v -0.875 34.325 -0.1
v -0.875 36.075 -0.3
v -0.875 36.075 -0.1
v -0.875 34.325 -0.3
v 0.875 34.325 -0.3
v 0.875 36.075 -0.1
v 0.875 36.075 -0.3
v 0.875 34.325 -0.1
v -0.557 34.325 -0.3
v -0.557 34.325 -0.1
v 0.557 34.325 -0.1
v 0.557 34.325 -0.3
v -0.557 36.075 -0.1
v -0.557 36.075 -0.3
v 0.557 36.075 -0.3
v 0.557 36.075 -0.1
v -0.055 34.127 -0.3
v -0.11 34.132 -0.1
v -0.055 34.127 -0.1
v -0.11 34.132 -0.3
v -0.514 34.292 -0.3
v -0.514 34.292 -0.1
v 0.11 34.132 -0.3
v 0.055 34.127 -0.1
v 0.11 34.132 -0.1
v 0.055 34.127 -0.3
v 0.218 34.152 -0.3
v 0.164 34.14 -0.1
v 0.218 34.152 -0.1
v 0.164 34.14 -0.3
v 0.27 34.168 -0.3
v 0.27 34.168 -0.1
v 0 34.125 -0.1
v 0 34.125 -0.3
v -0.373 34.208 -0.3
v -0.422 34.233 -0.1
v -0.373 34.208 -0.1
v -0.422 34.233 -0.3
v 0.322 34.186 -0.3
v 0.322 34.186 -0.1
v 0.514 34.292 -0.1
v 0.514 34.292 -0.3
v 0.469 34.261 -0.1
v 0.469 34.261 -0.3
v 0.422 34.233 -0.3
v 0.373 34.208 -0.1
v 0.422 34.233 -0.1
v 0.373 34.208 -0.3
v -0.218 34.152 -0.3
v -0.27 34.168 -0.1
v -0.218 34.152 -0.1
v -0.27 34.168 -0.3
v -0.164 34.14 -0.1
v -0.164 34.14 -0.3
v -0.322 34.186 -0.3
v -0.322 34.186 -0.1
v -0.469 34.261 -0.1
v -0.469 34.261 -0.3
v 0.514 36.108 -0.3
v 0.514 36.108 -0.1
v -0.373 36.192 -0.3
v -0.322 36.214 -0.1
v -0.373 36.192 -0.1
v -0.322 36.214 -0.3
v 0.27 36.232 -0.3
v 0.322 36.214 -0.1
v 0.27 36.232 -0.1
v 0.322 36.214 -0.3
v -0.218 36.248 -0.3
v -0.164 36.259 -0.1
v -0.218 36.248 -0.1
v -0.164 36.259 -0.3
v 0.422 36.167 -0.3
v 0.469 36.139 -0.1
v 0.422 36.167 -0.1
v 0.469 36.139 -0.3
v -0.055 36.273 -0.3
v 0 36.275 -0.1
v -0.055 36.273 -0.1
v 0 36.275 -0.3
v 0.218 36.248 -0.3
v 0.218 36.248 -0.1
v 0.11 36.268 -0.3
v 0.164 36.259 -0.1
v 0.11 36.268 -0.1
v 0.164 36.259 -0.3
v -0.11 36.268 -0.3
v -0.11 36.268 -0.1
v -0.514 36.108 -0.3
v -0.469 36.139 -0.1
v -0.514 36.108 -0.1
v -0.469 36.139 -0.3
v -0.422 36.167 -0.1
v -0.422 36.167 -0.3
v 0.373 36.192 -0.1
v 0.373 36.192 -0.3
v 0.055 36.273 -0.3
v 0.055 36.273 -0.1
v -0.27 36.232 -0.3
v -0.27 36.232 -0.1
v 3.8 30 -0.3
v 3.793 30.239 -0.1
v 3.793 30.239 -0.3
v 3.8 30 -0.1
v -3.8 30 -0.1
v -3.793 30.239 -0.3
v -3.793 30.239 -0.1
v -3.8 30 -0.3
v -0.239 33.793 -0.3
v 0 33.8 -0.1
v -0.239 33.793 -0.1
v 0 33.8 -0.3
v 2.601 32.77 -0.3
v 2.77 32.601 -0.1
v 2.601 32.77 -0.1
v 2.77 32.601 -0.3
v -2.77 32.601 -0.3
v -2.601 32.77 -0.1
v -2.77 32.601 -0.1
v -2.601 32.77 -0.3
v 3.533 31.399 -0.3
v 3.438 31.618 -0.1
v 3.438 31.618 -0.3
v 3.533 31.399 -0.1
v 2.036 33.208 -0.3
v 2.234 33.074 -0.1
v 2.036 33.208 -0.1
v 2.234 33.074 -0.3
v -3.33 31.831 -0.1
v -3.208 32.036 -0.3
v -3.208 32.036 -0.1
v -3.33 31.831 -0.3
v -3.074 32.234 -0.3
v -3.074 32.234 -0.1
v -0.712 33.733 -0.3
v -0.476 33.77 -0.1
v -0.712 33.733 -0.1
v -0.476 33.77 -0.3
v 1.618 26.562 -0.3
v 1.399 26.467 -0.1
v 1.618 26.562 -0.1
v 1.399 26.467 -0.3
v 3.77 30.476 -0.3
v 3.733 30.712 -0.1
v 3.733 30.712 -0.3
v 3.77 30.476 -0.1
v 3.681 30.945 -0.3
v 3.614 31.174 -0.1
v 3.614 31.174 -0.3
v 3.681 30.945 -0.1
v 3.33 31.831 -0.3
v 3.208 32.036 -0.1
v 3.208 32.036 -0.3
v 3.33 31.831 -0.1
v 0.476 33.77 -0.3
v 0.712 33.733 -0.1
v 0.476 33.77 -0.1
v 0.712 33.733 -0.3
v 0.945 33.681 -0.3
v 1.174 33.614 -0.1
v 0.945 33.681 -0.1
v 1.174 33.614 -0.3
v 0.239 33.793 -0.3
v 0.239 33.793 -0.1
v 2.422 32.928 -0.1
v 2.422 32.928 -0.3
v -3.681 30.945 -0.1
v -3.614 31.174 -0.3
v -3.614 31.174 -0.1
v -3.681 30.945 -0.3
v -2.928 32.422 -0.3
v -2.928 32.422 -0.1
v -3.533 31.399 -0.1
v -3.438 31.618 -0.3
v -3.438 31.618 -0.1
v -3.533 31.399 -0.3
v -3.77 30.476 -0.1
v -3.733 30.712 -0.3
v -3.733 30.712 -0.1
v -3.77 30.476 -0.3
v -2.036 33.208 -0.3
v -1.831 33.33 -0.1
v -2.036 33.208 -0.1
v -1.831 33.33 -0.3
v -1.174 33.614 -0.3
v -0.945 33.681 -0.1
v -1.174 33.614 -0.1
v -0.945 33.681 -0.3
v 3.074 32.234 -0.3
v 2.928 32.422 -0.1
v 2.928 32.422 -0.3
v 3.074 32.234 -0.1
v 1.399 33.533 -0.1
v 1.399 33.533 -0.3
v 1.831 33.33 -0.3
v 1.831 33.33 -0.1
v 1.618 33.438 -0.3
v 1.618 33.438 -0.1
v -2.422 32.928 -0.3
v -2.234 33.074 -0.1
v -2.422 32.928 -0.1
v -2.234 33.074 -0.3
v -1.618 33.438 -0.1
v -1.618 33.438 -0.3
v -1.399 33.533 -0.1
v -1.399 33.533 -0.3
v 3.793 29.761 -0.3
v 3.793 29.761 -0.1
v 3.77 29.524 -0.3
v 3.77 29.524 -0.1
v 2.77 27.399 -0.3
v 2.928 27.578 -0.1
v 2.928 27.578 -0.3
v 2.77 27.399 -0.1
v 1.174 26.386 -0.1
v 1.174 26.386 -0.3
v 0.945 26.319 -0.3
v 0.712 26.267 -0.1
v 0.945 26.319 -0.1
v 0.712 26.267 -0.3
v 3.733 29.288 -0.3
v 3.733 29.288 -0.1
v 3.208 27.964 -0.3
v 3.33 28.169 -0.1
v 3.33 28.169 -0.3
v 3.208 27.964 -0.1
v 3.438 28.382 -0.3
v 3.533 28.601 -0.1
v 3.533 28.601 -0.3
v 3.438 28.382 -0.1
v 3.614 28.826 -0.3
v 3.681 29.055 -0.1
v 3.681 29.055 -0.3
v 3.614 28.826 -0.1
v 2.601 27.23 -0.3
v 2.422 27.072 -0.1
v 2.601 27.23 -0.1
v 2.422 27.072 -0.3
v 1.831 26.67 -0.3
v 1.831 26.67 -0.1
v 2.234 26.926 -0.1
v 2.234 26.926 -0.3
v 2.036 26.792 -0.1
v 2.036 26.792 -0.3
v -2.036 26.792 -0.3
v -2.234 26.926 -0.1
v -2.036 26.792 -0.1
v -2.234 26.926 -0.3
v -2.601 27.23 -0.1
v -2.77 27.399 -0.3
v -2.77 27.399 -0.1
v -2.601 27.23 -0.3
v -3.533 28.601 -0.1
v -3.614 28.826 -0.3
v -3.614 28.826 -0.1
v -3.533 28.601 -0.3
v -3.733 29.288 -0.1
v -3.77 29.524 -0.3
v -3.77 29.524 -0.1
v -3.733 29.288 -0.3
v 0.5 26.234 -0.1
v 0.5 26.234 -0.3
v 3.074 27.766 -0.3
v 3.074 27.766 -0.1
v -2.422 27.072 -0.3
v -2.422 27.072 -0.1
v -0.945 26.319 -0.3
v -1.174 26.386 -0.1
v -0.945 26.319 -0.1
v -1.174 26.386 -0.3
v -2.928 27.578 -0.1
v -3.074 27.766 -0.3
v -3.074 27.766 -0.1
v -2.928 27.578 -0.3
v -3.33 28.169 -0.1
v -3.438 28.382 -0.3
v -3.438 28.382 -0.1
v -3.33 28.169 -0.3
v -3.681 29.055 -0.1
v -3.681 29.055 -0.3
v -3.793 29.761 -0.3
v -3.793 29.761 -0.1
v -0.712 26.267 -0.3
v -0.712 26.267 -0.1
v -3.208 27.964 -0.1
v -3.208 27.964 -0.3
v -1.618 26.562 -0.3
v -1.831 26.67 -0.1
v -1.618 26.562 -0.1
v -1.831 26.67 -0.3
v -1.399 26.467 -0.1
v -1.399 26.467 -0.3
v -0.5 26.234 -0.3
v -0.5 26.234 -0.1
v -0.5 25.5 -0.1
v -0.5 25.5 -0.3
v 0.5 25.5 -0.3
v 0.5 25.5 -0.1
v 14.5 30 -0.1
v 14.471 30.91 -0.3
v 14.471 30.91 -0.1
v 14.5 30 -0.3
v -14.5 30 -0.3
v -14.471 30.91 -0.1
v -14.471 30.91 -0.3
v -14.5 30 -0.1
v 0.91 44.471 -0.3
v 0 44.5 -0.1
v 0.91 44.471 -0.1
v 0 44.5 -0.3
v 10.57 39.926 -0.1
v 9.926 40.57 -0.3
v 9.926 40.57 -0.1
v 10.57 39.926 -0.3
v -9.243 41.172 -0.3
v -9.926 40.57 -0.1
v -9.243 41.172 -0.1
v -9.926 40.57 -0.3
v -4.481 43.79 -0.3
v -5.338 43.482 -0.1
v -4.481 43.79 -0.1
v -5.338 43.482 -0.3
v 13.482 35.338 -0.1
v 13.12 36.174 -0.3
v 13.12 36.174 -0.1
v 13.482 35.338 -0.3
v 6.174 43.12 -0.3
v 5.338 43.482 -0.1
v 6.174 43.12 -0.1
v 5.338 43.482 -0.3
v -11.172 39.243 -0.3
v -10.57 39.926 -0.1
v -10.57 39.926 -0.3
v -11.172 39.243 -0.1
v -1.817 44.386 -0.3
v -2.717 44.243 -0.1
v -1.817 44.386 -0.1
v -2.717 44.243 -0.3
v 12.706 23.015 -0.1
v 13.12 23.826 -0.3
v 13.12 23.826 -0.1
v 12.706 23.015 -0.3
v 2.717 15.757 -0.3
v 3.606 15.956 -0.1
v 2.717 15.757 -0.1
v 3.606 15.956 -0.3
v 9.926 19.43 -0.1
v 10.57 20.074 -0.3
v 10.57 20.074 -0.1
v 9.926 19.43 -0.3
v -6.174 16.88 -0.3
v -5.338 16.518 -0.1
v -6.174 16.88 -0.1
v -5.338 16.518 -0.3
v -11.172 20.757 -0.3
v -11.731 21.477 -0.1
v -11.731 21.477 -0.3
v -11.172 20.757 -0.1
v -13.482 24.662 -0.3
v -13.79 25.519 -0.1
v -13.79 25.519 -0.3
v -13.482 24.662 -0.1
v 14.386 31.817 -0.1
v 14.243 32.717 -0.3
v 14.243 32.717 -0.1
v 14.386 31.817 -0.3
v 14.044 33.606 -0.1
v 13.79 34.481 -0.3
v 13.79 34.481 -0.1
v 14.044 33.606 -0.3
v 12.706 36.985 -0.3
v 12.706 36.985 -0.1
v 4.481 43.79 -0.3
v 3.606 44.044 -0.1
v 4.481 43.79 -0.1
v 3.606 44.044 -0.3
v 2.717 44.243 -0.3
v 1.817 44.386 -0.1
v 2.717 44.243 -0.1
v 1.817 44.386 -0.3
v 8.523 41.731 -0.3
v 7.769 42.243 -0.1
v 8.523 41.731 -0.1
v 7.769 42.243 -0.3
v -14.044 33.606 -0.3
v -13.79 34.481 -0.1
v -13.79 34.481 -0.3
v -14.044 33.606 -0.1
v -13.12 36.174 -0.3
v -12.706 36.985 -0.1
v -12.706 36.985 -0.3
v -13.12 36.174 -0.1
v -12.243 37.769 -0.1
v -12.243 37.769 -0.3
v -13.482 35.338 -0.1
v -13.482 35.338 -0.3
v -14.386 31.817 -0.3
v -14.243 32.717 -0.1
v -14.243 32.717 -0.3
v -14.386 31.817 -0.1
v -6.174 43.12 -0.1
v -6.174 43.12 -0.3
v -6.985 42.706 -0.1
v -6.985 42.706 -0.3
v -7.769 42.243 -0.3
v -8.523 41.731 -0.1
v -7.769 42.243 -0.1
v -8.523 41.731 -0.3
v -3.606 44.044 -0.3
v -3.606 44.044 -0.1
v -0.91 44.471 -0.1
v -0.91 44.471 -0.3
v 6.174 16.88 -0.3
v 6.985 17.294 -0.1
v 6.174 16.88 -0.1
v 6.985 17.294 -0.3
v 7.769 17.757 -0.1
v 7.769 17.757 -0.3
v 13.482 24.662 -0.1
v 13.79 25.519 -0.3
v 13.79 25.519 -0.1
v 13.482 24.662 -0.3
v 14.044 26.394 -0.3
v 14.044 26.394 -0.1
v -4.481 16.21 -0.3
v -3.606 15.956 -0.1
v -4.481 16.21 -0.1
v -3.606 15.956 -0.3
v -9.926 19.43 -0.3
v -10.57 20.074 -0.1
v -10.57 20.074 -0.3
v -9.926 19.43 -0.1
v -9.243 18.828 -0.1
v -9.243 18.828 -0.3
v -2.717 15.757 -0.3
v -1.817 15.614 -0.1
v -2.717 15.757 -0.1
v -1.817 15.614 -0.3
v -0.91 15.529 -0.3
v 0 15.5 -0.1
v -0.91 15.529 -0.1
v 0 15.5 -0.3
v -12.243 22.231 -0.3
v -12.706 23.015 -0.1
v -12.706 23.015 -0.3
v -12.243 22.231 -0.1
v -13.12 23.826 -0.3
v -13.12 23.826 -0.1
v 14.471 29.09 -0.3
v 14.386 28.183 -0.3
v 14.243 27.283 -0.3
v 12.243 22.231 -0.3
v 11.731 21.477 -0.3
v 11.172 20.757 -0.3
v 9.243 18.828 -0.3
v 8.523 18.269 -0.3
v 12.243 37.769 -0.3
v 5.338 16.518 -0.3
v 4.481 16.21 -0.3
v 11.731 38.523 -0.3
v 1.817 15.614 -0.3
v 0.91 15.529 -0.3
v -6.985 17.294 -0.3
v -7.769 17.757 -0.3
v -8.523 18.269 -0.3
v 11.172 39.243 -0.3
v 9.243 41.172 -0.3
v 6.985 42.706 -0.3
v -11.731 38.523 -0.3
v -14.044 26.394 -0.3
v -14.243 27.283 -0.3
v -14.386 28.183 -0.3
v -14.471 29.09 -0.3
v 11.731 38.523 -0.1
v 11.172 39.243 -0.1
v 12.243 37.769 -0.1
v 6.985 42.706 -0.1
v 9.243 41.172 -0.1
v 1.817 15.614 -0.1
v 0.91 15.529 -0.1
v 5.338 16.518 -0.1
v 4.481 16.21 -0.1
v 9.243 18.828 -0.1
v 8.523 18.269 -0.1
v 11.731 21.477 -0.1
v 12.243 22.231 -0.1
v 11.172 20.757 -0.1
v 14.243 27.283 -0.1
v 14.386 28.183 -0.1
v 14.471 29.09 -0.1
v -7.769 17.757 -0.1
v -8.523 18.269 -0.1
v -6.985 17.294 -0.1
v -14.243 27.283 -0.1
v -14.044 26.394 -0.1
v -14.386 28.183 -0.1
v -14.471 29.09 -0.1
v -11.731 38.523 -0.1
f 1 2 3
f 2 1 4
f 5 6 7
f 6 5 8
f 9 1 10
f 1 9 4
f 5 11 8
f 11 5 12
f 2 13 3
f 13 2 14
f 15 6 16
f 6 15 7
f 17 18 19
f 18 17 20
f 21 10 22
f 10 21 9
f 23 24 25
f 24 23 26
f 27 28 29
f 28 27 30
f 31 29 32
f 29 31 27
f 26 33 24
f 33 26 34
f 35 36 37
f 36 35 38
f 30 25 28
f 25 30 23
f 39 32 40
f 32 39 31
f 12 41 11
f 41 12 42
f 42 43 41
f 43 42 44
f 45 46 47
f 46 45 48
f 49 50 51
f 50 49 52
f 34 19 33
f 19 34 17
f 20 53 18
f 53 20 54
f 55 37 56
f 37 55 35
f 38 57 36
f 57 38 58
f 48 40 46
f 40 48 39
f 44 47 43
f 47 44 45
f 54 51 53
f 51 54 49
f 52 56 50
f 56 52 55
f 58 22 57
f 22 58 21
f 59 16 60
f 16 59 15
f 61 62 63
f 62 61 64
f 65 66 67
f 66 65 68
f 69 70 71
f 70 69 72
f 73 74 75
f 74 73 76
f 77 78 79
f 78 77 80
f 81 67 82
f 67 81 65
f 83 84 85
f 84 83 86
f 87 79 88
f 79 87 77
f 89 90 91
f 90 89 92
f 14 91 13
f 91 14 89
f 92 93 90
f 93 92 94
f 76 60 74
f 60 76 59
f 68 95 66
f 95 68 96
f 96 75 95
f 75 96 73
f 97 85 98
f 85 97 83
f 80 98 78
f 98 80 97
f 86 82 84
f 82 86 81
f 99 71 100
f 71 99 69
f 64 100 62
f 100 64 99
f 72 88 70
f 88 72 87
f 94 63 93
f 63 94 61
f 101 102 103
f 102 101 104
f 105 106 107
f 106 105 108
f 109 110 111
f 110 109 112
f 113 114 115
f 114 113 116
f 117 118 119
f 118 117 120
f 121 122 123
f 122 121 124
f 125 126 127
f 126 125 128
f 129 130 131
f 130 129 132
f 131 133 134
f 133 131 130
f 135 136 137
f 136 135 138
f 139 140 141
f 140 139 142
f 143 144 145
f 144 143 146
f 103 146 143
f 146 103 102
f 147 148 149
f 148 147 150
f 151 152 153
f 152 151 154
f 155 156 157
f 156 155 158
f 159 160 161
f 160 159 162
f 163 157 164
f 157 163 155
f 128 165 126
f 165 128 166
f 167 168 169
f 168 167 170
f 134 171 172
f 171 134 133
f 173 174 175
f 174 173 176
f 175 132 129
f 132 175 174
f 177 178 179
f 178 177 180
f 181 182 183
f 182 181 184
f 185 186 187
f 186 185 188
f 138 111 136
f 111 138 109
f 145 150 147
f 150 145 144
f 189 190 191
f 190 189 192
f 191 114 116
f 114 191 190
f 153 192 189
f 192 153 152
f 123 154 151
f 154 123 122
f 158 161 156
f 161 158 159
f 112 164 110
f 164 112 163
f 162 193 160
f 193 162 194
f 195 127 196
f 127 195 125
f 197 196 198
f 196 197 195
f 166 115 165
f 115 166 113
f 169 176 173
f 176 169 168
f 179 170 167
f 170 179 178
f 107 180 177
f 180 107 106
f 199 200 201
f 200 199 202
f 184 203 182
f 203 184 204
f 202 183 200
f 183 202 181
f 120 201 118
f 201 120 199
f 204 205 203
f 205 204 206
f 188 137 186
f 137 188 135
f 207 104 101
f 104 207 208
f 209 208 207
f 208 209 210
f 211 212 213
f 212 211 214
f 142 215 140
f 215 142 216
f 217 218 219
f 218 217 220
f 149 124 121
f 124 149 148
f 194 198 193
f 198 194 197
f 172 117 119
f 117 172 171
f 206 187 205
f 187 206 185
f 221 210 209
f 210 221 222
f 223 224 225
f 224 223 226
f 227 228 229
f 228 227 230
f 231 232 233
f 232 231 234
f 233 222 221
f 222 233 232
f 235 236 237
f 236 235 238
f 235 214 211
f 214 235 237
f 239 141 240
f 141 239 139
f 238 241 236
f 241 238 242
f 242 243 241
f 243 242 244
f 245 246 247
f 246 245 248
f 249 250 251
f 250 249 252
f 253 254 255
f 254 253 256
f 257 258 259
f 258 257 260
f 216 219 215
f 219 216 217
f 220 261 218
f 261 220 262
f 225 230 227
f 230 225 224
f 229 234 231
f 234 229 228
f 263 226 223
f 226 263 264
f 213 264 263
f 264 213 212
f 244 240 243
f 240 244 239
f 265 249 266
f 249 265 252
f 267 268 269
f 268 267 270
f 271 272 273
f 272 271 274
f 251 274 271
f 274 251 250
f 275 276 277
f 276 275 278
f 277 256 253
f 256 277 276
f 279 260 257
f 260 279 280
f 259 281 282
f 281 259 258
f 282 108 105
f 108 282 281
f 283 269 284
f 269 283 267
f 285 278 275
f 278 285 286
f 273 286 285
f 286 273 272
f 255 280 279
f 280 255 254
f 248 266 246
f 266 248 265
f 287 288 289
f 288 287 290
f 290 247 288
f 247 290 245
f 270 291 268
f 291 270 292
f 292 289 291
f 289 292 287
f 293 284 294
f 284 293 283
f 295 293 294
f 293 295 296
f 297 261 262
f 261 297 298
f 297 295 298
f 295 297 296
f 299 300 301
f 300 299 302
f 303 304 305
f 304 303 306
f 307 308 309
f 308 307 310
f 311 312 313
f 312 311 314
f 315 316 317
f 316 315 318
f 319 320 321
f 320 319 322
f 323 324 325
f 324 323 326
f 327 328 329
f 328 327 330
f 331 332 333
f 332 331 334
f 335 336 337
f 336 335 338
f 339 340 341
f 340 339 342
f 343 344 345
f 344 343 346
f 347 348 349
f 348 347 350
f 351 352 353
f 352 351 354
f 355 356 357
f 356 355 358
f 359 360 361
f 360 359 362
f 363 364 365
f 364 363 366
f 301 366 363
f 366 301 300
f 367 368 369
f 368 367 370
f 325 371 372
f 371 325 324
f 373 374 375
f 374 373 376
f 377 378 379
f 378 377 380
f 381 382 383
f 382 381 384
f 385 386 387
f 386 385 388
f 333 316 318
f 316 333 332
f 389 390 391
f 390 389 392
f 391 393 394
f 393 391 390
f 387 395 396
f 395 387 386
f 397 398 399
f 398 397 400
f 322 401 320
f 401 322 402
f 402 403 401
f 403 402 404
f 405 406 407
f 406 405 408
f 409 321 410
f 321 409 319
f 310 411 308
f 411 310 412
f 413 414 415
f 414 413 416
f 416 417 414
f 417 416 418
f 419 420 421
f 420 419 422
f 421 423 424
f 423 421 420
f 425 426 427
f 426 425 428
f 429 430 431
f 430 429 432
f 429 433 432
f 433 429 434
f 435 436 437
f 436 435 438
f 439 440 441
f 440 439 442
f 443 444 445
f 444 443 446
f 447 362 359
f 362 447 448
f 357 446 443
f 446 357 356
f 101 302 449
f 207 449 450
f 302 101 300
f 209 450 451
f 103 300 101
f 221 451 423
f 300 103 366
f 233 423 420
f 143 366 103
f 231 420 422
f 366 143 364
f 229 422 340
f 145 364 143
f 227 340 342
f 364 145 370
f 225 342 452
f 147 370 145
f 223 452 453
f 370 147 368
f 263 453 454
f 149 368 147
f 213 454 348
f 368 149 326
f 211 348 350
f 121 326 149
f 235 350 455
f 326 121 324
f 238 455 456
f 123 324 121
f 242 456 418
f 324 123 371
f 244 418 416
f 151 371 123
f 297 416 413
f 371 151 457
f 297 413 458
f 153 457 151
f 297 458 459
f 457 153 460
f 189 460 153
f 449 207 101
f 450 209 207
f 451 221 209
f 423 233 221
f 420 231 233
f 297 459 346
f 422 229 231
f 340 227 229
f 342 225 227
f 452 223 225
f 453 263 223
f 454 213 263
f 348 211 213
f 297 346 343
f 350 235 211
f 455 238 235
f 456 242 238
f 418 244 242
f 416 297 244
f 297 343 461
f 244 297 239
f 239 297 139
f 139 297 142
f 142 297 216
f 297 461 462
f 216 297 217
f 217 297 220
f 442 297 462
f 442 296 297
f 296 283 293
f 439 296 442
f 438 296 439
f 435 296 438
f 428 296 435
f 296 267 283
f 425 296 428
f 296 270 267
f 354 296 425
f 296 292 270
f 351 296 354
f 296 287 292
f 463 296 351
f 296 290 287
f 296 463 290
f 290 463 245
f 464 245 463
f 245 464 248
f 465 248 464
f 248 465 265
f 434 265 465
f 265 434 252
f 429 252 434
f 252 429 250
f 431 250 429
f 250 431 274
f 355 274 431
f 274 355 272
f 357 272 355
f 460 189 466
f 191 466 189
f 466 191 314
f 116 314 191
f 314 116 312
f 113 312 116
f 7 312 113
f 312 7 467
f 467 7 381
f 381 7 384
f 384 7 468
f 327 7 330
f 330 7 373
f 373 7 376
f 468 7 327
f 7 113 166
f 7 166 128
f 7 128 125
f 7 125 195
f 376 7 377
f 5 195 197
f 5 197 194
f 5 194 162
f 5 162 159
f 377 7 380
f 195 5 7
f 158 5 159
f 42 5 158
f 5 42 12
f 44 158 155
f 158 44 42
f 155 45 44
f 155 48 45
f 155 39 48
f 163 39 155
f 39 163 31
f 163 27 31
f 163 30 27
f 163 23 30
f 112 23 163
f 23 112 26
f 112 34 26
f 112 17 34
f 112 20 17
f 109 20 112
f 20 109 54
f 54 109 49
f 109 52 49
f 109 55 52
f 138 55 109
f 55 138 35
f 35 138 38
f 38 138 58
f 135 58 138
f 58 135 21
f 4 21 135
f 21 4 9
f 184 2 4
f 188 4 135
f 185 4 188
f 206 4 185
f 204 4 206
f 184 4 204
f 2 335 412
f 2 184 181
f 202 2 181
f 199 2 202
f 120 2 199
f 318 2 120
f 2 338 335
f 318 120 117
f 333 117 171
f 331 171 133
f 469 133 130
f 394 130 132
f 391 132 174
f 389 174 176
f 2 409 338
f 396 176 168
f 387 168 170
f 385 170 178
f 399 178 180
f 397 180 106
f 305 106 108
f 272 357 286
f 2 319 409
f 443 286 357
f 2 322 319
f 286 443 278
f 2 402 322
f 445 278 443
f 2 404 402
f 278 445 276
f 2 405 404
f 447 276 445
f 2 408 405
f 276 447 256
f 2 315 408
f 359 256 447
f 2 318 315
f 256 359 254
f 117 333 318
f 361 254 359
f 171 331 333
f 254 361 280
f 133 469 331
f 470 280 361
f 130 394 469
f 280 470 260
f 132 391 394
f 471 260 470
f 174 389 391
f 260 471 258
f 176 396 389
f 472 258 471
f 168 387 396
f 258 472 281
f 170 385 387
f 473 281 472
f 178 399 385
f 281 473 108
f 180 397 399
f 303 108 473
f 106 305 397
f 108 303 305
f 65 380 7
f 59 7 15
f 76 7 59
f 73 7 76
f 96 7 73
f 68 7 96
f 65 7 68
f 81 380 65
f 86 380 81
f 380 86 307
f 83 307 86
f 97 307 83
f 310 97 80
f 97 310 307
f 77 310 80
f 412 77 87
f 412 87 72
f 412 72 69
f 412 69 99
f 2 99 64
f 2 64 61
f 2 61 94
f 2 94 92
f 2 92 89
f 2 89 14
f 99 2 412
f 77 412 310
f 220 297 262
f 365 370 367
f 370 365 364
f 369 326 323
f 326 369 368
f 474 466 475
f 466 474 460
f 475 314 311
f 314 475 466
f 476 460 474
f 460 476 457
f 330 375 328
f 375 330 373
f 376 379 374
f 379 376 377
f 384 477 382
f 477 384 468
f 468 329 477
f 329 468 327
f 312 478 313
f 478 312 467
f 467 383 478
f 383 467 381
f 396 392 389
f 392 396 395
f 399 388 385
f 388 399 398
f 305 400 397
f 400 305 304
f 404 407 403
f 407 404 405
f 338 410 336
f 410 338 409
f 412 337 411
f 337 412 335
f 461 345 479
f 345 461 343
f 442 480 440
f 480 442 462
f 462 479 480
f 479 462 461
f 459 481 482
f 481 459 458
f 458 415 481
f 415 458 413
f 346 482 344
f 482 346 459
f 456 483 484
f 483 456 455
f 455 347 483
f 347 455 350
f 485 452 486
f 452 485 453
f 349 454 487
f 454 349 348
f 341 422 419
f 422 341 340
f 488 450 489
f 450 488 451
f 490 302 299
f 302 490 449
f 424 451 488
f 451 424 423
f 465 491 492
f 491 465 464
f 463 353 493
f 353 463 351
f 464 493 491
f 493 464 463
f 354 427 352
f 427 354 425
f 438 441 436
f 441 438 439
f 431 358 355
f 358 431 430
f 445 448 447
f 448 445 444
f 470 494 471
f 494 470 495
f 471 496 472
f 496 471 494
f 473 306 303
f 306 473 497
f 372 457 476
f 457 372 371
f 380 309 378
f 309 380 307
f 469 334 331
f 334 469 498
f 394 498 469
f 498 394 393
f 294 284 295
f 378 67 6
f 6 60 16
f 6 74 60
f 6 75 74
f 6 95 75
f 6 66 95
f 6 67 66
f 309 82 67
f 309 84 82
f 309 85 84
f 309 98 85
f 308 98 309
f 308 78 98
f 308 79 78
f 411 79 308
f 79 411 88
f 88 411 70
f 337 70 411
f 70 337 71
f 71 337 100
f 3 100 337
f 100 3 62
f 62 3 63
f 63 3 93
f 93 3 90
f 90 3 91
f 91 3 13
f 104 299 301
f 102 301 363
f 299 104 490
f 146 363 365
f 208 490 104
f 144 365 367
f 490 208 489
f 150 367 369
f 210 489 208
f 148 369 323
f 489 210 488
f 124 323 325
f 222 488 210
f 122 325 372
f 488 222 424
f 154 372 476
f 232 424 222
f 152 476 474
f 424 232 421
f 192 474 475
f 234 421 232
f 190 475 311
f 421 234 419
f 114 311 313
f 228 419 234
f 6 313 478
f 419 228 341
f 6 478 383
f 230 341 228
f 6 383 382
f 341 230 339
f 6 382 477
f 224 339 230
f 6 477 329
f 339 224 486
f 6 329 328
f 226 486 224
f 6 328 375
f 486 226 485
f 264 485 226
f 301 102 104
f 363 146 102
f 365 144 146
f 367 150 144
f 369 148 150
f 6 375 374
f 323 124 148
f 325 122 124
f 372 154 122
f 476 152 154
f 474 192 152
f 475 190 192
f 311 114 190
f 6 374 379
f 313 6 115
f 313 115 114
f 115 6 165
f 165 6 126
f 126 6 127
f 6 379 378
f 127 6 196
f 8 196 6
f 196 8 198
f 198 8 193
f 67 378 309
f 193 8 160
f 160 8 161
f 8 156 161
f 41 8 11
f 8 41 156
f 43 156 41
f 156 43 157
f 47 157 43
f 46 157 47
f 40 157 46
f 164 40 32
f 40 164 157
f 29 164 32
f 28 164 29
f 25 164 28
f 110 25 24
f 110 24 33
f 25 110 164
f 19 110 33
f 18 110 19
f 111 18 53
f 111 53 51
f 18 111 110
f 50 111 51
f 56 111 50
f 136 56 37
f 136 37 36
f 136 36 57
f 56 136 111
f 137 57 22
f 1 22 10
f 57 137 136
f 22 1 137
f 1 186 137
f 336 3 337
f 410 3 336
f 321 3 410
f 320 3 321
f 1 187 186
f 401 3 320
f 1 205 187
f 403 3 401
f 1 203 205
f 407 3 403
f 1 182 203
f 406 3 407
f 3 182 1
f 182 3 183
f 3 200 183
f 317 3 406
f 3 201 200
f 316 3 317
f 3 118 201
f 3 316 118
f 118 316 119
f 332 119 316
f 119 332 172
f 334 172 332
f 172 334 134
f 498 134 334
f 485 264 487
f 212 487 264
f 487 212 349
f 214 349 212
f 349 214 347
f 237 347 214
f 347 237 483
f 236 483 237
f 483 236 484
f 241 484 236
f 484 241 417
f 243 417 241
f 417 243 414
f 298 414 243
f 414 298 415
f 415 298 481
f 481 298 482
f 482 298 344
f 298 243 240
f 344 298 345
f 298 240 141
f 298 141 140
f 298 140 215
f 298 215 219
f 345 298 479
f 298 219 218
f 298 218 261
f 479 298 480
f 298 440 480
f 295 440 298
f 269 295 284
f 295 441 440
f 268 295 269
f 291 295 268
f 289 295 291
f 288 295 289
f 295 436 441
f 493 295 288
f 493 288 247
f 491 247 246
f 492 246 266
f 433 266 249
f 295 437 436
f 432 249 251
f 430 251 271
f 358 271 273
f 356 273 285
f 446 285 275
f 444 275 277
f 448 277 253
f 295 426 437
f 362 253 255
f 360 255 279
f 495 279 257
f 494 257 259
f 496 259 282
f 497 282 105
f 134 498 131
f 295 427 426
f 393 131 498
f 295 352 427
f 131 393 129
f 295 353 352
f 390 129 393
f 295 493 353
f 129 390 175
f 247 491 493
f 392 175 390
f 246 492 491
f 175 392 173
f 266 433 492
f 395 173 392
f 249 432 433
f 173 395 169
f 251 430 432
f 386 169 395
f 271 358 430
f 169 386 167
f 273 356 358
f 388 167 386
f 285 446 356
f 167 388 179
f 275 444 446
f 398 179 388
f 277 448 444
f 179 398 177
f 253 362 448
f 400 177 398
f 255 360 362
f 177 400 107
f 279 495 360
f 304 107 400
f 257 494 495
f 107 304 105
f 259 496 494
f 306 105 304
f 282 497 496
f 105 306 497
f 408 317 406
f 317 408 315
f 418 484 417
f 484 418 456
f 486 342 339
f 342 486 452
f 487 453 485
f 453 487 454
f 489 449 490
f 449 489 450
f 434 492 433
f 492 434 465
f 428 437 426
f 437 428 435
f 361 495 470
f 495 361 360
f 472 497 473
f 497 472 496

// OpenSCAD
// Famicom Disk System - Accurate Circular Hub Insert

hub_radius = 6.8;
hub_thickness = 1;

notch_radius = 1.75;    // radius of the rounded notch
notch_offset_y = 5.2;  // vertical offset from center of hub to notch center

center_hole_radius = 2.8; // small center hole
$fn = 100; // smoothness of round shapes

module spacer(){
    translate([0, 30, -.2])
    difference(){
        cylinder(h = 0.2, r = 14.5, center = true);
        hole();
        translate([0, 0, -hub_thickness])
        sideB();
    }
}

module hole(){
    // Rounded notch (cylinder cut into side)
        translate([0, notch_offset_y, 0])
            cube([notch_radius,notch_radius,hub_thickness + 1], center = true);
        translate([0, notch_offset_y-.2, 0])
            cylinder(h = hub_thickness + 1, r = notch_radius/2, center = true);
        translate([0, notch_offset_y+.2, 0])
            cylinder(h = hub_thickness + 1, r = notch_radius/2, center = true);

        // Small round center hole
        cylinder(h = hub_thickness + 1, r = center_hole_radius, center = true);
}

module sideB() {
    difference() {
        // Main circular hub
        cylinder(h = hub_thickness, r = hub_radius, center = true);  
        hole(); 
        
        translate([0, 0, -1.12])
        cylinder(h = hub_thickness + 1, r1 =5, r2 = 2, center = true);
        // lower bevel
        translate([0, 0, -2.25])
        cylinder(h = hub_thickness*5, r1 = 10, r2 = 2, center = true);
    }
   
    //Cylinder sticking out of top
    difference() {
    translate([0, 0, hub_thickness])
    cylinder(h = hub_thickness, r = center_hole_radius+1, center = true);
        // Small round center hole
        cylinder(h = hub_thickness*3 + 1, r = center_hole_radius, center = true);
        // Upper bevel
        translate([0, 0, hub_thickness+1.175])
        cylinder(h = hub_thickness + 1, r1 = 2, r2 = 10, center = true); 
    }
    translate([0, -center_hole_radius-1.2, hub_thickness])
    cube([1,1,hub_thickness], center = true);        
   
}

module sideA() {
    translate([25, 0, 0]){ 
    translate([0, 0, -.5])
    difference(){
        cylinder(h = 0.2, r = 14.5, center = true);
        hole();
        translate([0, 0, -hub_thickness])
        sideB();
        //Center hole
        translate([0,0, 1])
        cylinder(h = hub_thickness*5, r = center_hole_radius+1.25, center = true);
        translate([0,0, -1])
            sideB();
    }
    difference() {
        // Main circular hub
        cylinder(h = hub_thickness, r = hub_radius, center = true); 
        hole();
        
        //Center hole
        translate([0,0, 1])
        cylinder(h = hub_thickness*5, r = center_hole_radius+1.25, center = true);
        translate([0,0, -1])
            sideB();
        }
    
    }
}

spacer();
